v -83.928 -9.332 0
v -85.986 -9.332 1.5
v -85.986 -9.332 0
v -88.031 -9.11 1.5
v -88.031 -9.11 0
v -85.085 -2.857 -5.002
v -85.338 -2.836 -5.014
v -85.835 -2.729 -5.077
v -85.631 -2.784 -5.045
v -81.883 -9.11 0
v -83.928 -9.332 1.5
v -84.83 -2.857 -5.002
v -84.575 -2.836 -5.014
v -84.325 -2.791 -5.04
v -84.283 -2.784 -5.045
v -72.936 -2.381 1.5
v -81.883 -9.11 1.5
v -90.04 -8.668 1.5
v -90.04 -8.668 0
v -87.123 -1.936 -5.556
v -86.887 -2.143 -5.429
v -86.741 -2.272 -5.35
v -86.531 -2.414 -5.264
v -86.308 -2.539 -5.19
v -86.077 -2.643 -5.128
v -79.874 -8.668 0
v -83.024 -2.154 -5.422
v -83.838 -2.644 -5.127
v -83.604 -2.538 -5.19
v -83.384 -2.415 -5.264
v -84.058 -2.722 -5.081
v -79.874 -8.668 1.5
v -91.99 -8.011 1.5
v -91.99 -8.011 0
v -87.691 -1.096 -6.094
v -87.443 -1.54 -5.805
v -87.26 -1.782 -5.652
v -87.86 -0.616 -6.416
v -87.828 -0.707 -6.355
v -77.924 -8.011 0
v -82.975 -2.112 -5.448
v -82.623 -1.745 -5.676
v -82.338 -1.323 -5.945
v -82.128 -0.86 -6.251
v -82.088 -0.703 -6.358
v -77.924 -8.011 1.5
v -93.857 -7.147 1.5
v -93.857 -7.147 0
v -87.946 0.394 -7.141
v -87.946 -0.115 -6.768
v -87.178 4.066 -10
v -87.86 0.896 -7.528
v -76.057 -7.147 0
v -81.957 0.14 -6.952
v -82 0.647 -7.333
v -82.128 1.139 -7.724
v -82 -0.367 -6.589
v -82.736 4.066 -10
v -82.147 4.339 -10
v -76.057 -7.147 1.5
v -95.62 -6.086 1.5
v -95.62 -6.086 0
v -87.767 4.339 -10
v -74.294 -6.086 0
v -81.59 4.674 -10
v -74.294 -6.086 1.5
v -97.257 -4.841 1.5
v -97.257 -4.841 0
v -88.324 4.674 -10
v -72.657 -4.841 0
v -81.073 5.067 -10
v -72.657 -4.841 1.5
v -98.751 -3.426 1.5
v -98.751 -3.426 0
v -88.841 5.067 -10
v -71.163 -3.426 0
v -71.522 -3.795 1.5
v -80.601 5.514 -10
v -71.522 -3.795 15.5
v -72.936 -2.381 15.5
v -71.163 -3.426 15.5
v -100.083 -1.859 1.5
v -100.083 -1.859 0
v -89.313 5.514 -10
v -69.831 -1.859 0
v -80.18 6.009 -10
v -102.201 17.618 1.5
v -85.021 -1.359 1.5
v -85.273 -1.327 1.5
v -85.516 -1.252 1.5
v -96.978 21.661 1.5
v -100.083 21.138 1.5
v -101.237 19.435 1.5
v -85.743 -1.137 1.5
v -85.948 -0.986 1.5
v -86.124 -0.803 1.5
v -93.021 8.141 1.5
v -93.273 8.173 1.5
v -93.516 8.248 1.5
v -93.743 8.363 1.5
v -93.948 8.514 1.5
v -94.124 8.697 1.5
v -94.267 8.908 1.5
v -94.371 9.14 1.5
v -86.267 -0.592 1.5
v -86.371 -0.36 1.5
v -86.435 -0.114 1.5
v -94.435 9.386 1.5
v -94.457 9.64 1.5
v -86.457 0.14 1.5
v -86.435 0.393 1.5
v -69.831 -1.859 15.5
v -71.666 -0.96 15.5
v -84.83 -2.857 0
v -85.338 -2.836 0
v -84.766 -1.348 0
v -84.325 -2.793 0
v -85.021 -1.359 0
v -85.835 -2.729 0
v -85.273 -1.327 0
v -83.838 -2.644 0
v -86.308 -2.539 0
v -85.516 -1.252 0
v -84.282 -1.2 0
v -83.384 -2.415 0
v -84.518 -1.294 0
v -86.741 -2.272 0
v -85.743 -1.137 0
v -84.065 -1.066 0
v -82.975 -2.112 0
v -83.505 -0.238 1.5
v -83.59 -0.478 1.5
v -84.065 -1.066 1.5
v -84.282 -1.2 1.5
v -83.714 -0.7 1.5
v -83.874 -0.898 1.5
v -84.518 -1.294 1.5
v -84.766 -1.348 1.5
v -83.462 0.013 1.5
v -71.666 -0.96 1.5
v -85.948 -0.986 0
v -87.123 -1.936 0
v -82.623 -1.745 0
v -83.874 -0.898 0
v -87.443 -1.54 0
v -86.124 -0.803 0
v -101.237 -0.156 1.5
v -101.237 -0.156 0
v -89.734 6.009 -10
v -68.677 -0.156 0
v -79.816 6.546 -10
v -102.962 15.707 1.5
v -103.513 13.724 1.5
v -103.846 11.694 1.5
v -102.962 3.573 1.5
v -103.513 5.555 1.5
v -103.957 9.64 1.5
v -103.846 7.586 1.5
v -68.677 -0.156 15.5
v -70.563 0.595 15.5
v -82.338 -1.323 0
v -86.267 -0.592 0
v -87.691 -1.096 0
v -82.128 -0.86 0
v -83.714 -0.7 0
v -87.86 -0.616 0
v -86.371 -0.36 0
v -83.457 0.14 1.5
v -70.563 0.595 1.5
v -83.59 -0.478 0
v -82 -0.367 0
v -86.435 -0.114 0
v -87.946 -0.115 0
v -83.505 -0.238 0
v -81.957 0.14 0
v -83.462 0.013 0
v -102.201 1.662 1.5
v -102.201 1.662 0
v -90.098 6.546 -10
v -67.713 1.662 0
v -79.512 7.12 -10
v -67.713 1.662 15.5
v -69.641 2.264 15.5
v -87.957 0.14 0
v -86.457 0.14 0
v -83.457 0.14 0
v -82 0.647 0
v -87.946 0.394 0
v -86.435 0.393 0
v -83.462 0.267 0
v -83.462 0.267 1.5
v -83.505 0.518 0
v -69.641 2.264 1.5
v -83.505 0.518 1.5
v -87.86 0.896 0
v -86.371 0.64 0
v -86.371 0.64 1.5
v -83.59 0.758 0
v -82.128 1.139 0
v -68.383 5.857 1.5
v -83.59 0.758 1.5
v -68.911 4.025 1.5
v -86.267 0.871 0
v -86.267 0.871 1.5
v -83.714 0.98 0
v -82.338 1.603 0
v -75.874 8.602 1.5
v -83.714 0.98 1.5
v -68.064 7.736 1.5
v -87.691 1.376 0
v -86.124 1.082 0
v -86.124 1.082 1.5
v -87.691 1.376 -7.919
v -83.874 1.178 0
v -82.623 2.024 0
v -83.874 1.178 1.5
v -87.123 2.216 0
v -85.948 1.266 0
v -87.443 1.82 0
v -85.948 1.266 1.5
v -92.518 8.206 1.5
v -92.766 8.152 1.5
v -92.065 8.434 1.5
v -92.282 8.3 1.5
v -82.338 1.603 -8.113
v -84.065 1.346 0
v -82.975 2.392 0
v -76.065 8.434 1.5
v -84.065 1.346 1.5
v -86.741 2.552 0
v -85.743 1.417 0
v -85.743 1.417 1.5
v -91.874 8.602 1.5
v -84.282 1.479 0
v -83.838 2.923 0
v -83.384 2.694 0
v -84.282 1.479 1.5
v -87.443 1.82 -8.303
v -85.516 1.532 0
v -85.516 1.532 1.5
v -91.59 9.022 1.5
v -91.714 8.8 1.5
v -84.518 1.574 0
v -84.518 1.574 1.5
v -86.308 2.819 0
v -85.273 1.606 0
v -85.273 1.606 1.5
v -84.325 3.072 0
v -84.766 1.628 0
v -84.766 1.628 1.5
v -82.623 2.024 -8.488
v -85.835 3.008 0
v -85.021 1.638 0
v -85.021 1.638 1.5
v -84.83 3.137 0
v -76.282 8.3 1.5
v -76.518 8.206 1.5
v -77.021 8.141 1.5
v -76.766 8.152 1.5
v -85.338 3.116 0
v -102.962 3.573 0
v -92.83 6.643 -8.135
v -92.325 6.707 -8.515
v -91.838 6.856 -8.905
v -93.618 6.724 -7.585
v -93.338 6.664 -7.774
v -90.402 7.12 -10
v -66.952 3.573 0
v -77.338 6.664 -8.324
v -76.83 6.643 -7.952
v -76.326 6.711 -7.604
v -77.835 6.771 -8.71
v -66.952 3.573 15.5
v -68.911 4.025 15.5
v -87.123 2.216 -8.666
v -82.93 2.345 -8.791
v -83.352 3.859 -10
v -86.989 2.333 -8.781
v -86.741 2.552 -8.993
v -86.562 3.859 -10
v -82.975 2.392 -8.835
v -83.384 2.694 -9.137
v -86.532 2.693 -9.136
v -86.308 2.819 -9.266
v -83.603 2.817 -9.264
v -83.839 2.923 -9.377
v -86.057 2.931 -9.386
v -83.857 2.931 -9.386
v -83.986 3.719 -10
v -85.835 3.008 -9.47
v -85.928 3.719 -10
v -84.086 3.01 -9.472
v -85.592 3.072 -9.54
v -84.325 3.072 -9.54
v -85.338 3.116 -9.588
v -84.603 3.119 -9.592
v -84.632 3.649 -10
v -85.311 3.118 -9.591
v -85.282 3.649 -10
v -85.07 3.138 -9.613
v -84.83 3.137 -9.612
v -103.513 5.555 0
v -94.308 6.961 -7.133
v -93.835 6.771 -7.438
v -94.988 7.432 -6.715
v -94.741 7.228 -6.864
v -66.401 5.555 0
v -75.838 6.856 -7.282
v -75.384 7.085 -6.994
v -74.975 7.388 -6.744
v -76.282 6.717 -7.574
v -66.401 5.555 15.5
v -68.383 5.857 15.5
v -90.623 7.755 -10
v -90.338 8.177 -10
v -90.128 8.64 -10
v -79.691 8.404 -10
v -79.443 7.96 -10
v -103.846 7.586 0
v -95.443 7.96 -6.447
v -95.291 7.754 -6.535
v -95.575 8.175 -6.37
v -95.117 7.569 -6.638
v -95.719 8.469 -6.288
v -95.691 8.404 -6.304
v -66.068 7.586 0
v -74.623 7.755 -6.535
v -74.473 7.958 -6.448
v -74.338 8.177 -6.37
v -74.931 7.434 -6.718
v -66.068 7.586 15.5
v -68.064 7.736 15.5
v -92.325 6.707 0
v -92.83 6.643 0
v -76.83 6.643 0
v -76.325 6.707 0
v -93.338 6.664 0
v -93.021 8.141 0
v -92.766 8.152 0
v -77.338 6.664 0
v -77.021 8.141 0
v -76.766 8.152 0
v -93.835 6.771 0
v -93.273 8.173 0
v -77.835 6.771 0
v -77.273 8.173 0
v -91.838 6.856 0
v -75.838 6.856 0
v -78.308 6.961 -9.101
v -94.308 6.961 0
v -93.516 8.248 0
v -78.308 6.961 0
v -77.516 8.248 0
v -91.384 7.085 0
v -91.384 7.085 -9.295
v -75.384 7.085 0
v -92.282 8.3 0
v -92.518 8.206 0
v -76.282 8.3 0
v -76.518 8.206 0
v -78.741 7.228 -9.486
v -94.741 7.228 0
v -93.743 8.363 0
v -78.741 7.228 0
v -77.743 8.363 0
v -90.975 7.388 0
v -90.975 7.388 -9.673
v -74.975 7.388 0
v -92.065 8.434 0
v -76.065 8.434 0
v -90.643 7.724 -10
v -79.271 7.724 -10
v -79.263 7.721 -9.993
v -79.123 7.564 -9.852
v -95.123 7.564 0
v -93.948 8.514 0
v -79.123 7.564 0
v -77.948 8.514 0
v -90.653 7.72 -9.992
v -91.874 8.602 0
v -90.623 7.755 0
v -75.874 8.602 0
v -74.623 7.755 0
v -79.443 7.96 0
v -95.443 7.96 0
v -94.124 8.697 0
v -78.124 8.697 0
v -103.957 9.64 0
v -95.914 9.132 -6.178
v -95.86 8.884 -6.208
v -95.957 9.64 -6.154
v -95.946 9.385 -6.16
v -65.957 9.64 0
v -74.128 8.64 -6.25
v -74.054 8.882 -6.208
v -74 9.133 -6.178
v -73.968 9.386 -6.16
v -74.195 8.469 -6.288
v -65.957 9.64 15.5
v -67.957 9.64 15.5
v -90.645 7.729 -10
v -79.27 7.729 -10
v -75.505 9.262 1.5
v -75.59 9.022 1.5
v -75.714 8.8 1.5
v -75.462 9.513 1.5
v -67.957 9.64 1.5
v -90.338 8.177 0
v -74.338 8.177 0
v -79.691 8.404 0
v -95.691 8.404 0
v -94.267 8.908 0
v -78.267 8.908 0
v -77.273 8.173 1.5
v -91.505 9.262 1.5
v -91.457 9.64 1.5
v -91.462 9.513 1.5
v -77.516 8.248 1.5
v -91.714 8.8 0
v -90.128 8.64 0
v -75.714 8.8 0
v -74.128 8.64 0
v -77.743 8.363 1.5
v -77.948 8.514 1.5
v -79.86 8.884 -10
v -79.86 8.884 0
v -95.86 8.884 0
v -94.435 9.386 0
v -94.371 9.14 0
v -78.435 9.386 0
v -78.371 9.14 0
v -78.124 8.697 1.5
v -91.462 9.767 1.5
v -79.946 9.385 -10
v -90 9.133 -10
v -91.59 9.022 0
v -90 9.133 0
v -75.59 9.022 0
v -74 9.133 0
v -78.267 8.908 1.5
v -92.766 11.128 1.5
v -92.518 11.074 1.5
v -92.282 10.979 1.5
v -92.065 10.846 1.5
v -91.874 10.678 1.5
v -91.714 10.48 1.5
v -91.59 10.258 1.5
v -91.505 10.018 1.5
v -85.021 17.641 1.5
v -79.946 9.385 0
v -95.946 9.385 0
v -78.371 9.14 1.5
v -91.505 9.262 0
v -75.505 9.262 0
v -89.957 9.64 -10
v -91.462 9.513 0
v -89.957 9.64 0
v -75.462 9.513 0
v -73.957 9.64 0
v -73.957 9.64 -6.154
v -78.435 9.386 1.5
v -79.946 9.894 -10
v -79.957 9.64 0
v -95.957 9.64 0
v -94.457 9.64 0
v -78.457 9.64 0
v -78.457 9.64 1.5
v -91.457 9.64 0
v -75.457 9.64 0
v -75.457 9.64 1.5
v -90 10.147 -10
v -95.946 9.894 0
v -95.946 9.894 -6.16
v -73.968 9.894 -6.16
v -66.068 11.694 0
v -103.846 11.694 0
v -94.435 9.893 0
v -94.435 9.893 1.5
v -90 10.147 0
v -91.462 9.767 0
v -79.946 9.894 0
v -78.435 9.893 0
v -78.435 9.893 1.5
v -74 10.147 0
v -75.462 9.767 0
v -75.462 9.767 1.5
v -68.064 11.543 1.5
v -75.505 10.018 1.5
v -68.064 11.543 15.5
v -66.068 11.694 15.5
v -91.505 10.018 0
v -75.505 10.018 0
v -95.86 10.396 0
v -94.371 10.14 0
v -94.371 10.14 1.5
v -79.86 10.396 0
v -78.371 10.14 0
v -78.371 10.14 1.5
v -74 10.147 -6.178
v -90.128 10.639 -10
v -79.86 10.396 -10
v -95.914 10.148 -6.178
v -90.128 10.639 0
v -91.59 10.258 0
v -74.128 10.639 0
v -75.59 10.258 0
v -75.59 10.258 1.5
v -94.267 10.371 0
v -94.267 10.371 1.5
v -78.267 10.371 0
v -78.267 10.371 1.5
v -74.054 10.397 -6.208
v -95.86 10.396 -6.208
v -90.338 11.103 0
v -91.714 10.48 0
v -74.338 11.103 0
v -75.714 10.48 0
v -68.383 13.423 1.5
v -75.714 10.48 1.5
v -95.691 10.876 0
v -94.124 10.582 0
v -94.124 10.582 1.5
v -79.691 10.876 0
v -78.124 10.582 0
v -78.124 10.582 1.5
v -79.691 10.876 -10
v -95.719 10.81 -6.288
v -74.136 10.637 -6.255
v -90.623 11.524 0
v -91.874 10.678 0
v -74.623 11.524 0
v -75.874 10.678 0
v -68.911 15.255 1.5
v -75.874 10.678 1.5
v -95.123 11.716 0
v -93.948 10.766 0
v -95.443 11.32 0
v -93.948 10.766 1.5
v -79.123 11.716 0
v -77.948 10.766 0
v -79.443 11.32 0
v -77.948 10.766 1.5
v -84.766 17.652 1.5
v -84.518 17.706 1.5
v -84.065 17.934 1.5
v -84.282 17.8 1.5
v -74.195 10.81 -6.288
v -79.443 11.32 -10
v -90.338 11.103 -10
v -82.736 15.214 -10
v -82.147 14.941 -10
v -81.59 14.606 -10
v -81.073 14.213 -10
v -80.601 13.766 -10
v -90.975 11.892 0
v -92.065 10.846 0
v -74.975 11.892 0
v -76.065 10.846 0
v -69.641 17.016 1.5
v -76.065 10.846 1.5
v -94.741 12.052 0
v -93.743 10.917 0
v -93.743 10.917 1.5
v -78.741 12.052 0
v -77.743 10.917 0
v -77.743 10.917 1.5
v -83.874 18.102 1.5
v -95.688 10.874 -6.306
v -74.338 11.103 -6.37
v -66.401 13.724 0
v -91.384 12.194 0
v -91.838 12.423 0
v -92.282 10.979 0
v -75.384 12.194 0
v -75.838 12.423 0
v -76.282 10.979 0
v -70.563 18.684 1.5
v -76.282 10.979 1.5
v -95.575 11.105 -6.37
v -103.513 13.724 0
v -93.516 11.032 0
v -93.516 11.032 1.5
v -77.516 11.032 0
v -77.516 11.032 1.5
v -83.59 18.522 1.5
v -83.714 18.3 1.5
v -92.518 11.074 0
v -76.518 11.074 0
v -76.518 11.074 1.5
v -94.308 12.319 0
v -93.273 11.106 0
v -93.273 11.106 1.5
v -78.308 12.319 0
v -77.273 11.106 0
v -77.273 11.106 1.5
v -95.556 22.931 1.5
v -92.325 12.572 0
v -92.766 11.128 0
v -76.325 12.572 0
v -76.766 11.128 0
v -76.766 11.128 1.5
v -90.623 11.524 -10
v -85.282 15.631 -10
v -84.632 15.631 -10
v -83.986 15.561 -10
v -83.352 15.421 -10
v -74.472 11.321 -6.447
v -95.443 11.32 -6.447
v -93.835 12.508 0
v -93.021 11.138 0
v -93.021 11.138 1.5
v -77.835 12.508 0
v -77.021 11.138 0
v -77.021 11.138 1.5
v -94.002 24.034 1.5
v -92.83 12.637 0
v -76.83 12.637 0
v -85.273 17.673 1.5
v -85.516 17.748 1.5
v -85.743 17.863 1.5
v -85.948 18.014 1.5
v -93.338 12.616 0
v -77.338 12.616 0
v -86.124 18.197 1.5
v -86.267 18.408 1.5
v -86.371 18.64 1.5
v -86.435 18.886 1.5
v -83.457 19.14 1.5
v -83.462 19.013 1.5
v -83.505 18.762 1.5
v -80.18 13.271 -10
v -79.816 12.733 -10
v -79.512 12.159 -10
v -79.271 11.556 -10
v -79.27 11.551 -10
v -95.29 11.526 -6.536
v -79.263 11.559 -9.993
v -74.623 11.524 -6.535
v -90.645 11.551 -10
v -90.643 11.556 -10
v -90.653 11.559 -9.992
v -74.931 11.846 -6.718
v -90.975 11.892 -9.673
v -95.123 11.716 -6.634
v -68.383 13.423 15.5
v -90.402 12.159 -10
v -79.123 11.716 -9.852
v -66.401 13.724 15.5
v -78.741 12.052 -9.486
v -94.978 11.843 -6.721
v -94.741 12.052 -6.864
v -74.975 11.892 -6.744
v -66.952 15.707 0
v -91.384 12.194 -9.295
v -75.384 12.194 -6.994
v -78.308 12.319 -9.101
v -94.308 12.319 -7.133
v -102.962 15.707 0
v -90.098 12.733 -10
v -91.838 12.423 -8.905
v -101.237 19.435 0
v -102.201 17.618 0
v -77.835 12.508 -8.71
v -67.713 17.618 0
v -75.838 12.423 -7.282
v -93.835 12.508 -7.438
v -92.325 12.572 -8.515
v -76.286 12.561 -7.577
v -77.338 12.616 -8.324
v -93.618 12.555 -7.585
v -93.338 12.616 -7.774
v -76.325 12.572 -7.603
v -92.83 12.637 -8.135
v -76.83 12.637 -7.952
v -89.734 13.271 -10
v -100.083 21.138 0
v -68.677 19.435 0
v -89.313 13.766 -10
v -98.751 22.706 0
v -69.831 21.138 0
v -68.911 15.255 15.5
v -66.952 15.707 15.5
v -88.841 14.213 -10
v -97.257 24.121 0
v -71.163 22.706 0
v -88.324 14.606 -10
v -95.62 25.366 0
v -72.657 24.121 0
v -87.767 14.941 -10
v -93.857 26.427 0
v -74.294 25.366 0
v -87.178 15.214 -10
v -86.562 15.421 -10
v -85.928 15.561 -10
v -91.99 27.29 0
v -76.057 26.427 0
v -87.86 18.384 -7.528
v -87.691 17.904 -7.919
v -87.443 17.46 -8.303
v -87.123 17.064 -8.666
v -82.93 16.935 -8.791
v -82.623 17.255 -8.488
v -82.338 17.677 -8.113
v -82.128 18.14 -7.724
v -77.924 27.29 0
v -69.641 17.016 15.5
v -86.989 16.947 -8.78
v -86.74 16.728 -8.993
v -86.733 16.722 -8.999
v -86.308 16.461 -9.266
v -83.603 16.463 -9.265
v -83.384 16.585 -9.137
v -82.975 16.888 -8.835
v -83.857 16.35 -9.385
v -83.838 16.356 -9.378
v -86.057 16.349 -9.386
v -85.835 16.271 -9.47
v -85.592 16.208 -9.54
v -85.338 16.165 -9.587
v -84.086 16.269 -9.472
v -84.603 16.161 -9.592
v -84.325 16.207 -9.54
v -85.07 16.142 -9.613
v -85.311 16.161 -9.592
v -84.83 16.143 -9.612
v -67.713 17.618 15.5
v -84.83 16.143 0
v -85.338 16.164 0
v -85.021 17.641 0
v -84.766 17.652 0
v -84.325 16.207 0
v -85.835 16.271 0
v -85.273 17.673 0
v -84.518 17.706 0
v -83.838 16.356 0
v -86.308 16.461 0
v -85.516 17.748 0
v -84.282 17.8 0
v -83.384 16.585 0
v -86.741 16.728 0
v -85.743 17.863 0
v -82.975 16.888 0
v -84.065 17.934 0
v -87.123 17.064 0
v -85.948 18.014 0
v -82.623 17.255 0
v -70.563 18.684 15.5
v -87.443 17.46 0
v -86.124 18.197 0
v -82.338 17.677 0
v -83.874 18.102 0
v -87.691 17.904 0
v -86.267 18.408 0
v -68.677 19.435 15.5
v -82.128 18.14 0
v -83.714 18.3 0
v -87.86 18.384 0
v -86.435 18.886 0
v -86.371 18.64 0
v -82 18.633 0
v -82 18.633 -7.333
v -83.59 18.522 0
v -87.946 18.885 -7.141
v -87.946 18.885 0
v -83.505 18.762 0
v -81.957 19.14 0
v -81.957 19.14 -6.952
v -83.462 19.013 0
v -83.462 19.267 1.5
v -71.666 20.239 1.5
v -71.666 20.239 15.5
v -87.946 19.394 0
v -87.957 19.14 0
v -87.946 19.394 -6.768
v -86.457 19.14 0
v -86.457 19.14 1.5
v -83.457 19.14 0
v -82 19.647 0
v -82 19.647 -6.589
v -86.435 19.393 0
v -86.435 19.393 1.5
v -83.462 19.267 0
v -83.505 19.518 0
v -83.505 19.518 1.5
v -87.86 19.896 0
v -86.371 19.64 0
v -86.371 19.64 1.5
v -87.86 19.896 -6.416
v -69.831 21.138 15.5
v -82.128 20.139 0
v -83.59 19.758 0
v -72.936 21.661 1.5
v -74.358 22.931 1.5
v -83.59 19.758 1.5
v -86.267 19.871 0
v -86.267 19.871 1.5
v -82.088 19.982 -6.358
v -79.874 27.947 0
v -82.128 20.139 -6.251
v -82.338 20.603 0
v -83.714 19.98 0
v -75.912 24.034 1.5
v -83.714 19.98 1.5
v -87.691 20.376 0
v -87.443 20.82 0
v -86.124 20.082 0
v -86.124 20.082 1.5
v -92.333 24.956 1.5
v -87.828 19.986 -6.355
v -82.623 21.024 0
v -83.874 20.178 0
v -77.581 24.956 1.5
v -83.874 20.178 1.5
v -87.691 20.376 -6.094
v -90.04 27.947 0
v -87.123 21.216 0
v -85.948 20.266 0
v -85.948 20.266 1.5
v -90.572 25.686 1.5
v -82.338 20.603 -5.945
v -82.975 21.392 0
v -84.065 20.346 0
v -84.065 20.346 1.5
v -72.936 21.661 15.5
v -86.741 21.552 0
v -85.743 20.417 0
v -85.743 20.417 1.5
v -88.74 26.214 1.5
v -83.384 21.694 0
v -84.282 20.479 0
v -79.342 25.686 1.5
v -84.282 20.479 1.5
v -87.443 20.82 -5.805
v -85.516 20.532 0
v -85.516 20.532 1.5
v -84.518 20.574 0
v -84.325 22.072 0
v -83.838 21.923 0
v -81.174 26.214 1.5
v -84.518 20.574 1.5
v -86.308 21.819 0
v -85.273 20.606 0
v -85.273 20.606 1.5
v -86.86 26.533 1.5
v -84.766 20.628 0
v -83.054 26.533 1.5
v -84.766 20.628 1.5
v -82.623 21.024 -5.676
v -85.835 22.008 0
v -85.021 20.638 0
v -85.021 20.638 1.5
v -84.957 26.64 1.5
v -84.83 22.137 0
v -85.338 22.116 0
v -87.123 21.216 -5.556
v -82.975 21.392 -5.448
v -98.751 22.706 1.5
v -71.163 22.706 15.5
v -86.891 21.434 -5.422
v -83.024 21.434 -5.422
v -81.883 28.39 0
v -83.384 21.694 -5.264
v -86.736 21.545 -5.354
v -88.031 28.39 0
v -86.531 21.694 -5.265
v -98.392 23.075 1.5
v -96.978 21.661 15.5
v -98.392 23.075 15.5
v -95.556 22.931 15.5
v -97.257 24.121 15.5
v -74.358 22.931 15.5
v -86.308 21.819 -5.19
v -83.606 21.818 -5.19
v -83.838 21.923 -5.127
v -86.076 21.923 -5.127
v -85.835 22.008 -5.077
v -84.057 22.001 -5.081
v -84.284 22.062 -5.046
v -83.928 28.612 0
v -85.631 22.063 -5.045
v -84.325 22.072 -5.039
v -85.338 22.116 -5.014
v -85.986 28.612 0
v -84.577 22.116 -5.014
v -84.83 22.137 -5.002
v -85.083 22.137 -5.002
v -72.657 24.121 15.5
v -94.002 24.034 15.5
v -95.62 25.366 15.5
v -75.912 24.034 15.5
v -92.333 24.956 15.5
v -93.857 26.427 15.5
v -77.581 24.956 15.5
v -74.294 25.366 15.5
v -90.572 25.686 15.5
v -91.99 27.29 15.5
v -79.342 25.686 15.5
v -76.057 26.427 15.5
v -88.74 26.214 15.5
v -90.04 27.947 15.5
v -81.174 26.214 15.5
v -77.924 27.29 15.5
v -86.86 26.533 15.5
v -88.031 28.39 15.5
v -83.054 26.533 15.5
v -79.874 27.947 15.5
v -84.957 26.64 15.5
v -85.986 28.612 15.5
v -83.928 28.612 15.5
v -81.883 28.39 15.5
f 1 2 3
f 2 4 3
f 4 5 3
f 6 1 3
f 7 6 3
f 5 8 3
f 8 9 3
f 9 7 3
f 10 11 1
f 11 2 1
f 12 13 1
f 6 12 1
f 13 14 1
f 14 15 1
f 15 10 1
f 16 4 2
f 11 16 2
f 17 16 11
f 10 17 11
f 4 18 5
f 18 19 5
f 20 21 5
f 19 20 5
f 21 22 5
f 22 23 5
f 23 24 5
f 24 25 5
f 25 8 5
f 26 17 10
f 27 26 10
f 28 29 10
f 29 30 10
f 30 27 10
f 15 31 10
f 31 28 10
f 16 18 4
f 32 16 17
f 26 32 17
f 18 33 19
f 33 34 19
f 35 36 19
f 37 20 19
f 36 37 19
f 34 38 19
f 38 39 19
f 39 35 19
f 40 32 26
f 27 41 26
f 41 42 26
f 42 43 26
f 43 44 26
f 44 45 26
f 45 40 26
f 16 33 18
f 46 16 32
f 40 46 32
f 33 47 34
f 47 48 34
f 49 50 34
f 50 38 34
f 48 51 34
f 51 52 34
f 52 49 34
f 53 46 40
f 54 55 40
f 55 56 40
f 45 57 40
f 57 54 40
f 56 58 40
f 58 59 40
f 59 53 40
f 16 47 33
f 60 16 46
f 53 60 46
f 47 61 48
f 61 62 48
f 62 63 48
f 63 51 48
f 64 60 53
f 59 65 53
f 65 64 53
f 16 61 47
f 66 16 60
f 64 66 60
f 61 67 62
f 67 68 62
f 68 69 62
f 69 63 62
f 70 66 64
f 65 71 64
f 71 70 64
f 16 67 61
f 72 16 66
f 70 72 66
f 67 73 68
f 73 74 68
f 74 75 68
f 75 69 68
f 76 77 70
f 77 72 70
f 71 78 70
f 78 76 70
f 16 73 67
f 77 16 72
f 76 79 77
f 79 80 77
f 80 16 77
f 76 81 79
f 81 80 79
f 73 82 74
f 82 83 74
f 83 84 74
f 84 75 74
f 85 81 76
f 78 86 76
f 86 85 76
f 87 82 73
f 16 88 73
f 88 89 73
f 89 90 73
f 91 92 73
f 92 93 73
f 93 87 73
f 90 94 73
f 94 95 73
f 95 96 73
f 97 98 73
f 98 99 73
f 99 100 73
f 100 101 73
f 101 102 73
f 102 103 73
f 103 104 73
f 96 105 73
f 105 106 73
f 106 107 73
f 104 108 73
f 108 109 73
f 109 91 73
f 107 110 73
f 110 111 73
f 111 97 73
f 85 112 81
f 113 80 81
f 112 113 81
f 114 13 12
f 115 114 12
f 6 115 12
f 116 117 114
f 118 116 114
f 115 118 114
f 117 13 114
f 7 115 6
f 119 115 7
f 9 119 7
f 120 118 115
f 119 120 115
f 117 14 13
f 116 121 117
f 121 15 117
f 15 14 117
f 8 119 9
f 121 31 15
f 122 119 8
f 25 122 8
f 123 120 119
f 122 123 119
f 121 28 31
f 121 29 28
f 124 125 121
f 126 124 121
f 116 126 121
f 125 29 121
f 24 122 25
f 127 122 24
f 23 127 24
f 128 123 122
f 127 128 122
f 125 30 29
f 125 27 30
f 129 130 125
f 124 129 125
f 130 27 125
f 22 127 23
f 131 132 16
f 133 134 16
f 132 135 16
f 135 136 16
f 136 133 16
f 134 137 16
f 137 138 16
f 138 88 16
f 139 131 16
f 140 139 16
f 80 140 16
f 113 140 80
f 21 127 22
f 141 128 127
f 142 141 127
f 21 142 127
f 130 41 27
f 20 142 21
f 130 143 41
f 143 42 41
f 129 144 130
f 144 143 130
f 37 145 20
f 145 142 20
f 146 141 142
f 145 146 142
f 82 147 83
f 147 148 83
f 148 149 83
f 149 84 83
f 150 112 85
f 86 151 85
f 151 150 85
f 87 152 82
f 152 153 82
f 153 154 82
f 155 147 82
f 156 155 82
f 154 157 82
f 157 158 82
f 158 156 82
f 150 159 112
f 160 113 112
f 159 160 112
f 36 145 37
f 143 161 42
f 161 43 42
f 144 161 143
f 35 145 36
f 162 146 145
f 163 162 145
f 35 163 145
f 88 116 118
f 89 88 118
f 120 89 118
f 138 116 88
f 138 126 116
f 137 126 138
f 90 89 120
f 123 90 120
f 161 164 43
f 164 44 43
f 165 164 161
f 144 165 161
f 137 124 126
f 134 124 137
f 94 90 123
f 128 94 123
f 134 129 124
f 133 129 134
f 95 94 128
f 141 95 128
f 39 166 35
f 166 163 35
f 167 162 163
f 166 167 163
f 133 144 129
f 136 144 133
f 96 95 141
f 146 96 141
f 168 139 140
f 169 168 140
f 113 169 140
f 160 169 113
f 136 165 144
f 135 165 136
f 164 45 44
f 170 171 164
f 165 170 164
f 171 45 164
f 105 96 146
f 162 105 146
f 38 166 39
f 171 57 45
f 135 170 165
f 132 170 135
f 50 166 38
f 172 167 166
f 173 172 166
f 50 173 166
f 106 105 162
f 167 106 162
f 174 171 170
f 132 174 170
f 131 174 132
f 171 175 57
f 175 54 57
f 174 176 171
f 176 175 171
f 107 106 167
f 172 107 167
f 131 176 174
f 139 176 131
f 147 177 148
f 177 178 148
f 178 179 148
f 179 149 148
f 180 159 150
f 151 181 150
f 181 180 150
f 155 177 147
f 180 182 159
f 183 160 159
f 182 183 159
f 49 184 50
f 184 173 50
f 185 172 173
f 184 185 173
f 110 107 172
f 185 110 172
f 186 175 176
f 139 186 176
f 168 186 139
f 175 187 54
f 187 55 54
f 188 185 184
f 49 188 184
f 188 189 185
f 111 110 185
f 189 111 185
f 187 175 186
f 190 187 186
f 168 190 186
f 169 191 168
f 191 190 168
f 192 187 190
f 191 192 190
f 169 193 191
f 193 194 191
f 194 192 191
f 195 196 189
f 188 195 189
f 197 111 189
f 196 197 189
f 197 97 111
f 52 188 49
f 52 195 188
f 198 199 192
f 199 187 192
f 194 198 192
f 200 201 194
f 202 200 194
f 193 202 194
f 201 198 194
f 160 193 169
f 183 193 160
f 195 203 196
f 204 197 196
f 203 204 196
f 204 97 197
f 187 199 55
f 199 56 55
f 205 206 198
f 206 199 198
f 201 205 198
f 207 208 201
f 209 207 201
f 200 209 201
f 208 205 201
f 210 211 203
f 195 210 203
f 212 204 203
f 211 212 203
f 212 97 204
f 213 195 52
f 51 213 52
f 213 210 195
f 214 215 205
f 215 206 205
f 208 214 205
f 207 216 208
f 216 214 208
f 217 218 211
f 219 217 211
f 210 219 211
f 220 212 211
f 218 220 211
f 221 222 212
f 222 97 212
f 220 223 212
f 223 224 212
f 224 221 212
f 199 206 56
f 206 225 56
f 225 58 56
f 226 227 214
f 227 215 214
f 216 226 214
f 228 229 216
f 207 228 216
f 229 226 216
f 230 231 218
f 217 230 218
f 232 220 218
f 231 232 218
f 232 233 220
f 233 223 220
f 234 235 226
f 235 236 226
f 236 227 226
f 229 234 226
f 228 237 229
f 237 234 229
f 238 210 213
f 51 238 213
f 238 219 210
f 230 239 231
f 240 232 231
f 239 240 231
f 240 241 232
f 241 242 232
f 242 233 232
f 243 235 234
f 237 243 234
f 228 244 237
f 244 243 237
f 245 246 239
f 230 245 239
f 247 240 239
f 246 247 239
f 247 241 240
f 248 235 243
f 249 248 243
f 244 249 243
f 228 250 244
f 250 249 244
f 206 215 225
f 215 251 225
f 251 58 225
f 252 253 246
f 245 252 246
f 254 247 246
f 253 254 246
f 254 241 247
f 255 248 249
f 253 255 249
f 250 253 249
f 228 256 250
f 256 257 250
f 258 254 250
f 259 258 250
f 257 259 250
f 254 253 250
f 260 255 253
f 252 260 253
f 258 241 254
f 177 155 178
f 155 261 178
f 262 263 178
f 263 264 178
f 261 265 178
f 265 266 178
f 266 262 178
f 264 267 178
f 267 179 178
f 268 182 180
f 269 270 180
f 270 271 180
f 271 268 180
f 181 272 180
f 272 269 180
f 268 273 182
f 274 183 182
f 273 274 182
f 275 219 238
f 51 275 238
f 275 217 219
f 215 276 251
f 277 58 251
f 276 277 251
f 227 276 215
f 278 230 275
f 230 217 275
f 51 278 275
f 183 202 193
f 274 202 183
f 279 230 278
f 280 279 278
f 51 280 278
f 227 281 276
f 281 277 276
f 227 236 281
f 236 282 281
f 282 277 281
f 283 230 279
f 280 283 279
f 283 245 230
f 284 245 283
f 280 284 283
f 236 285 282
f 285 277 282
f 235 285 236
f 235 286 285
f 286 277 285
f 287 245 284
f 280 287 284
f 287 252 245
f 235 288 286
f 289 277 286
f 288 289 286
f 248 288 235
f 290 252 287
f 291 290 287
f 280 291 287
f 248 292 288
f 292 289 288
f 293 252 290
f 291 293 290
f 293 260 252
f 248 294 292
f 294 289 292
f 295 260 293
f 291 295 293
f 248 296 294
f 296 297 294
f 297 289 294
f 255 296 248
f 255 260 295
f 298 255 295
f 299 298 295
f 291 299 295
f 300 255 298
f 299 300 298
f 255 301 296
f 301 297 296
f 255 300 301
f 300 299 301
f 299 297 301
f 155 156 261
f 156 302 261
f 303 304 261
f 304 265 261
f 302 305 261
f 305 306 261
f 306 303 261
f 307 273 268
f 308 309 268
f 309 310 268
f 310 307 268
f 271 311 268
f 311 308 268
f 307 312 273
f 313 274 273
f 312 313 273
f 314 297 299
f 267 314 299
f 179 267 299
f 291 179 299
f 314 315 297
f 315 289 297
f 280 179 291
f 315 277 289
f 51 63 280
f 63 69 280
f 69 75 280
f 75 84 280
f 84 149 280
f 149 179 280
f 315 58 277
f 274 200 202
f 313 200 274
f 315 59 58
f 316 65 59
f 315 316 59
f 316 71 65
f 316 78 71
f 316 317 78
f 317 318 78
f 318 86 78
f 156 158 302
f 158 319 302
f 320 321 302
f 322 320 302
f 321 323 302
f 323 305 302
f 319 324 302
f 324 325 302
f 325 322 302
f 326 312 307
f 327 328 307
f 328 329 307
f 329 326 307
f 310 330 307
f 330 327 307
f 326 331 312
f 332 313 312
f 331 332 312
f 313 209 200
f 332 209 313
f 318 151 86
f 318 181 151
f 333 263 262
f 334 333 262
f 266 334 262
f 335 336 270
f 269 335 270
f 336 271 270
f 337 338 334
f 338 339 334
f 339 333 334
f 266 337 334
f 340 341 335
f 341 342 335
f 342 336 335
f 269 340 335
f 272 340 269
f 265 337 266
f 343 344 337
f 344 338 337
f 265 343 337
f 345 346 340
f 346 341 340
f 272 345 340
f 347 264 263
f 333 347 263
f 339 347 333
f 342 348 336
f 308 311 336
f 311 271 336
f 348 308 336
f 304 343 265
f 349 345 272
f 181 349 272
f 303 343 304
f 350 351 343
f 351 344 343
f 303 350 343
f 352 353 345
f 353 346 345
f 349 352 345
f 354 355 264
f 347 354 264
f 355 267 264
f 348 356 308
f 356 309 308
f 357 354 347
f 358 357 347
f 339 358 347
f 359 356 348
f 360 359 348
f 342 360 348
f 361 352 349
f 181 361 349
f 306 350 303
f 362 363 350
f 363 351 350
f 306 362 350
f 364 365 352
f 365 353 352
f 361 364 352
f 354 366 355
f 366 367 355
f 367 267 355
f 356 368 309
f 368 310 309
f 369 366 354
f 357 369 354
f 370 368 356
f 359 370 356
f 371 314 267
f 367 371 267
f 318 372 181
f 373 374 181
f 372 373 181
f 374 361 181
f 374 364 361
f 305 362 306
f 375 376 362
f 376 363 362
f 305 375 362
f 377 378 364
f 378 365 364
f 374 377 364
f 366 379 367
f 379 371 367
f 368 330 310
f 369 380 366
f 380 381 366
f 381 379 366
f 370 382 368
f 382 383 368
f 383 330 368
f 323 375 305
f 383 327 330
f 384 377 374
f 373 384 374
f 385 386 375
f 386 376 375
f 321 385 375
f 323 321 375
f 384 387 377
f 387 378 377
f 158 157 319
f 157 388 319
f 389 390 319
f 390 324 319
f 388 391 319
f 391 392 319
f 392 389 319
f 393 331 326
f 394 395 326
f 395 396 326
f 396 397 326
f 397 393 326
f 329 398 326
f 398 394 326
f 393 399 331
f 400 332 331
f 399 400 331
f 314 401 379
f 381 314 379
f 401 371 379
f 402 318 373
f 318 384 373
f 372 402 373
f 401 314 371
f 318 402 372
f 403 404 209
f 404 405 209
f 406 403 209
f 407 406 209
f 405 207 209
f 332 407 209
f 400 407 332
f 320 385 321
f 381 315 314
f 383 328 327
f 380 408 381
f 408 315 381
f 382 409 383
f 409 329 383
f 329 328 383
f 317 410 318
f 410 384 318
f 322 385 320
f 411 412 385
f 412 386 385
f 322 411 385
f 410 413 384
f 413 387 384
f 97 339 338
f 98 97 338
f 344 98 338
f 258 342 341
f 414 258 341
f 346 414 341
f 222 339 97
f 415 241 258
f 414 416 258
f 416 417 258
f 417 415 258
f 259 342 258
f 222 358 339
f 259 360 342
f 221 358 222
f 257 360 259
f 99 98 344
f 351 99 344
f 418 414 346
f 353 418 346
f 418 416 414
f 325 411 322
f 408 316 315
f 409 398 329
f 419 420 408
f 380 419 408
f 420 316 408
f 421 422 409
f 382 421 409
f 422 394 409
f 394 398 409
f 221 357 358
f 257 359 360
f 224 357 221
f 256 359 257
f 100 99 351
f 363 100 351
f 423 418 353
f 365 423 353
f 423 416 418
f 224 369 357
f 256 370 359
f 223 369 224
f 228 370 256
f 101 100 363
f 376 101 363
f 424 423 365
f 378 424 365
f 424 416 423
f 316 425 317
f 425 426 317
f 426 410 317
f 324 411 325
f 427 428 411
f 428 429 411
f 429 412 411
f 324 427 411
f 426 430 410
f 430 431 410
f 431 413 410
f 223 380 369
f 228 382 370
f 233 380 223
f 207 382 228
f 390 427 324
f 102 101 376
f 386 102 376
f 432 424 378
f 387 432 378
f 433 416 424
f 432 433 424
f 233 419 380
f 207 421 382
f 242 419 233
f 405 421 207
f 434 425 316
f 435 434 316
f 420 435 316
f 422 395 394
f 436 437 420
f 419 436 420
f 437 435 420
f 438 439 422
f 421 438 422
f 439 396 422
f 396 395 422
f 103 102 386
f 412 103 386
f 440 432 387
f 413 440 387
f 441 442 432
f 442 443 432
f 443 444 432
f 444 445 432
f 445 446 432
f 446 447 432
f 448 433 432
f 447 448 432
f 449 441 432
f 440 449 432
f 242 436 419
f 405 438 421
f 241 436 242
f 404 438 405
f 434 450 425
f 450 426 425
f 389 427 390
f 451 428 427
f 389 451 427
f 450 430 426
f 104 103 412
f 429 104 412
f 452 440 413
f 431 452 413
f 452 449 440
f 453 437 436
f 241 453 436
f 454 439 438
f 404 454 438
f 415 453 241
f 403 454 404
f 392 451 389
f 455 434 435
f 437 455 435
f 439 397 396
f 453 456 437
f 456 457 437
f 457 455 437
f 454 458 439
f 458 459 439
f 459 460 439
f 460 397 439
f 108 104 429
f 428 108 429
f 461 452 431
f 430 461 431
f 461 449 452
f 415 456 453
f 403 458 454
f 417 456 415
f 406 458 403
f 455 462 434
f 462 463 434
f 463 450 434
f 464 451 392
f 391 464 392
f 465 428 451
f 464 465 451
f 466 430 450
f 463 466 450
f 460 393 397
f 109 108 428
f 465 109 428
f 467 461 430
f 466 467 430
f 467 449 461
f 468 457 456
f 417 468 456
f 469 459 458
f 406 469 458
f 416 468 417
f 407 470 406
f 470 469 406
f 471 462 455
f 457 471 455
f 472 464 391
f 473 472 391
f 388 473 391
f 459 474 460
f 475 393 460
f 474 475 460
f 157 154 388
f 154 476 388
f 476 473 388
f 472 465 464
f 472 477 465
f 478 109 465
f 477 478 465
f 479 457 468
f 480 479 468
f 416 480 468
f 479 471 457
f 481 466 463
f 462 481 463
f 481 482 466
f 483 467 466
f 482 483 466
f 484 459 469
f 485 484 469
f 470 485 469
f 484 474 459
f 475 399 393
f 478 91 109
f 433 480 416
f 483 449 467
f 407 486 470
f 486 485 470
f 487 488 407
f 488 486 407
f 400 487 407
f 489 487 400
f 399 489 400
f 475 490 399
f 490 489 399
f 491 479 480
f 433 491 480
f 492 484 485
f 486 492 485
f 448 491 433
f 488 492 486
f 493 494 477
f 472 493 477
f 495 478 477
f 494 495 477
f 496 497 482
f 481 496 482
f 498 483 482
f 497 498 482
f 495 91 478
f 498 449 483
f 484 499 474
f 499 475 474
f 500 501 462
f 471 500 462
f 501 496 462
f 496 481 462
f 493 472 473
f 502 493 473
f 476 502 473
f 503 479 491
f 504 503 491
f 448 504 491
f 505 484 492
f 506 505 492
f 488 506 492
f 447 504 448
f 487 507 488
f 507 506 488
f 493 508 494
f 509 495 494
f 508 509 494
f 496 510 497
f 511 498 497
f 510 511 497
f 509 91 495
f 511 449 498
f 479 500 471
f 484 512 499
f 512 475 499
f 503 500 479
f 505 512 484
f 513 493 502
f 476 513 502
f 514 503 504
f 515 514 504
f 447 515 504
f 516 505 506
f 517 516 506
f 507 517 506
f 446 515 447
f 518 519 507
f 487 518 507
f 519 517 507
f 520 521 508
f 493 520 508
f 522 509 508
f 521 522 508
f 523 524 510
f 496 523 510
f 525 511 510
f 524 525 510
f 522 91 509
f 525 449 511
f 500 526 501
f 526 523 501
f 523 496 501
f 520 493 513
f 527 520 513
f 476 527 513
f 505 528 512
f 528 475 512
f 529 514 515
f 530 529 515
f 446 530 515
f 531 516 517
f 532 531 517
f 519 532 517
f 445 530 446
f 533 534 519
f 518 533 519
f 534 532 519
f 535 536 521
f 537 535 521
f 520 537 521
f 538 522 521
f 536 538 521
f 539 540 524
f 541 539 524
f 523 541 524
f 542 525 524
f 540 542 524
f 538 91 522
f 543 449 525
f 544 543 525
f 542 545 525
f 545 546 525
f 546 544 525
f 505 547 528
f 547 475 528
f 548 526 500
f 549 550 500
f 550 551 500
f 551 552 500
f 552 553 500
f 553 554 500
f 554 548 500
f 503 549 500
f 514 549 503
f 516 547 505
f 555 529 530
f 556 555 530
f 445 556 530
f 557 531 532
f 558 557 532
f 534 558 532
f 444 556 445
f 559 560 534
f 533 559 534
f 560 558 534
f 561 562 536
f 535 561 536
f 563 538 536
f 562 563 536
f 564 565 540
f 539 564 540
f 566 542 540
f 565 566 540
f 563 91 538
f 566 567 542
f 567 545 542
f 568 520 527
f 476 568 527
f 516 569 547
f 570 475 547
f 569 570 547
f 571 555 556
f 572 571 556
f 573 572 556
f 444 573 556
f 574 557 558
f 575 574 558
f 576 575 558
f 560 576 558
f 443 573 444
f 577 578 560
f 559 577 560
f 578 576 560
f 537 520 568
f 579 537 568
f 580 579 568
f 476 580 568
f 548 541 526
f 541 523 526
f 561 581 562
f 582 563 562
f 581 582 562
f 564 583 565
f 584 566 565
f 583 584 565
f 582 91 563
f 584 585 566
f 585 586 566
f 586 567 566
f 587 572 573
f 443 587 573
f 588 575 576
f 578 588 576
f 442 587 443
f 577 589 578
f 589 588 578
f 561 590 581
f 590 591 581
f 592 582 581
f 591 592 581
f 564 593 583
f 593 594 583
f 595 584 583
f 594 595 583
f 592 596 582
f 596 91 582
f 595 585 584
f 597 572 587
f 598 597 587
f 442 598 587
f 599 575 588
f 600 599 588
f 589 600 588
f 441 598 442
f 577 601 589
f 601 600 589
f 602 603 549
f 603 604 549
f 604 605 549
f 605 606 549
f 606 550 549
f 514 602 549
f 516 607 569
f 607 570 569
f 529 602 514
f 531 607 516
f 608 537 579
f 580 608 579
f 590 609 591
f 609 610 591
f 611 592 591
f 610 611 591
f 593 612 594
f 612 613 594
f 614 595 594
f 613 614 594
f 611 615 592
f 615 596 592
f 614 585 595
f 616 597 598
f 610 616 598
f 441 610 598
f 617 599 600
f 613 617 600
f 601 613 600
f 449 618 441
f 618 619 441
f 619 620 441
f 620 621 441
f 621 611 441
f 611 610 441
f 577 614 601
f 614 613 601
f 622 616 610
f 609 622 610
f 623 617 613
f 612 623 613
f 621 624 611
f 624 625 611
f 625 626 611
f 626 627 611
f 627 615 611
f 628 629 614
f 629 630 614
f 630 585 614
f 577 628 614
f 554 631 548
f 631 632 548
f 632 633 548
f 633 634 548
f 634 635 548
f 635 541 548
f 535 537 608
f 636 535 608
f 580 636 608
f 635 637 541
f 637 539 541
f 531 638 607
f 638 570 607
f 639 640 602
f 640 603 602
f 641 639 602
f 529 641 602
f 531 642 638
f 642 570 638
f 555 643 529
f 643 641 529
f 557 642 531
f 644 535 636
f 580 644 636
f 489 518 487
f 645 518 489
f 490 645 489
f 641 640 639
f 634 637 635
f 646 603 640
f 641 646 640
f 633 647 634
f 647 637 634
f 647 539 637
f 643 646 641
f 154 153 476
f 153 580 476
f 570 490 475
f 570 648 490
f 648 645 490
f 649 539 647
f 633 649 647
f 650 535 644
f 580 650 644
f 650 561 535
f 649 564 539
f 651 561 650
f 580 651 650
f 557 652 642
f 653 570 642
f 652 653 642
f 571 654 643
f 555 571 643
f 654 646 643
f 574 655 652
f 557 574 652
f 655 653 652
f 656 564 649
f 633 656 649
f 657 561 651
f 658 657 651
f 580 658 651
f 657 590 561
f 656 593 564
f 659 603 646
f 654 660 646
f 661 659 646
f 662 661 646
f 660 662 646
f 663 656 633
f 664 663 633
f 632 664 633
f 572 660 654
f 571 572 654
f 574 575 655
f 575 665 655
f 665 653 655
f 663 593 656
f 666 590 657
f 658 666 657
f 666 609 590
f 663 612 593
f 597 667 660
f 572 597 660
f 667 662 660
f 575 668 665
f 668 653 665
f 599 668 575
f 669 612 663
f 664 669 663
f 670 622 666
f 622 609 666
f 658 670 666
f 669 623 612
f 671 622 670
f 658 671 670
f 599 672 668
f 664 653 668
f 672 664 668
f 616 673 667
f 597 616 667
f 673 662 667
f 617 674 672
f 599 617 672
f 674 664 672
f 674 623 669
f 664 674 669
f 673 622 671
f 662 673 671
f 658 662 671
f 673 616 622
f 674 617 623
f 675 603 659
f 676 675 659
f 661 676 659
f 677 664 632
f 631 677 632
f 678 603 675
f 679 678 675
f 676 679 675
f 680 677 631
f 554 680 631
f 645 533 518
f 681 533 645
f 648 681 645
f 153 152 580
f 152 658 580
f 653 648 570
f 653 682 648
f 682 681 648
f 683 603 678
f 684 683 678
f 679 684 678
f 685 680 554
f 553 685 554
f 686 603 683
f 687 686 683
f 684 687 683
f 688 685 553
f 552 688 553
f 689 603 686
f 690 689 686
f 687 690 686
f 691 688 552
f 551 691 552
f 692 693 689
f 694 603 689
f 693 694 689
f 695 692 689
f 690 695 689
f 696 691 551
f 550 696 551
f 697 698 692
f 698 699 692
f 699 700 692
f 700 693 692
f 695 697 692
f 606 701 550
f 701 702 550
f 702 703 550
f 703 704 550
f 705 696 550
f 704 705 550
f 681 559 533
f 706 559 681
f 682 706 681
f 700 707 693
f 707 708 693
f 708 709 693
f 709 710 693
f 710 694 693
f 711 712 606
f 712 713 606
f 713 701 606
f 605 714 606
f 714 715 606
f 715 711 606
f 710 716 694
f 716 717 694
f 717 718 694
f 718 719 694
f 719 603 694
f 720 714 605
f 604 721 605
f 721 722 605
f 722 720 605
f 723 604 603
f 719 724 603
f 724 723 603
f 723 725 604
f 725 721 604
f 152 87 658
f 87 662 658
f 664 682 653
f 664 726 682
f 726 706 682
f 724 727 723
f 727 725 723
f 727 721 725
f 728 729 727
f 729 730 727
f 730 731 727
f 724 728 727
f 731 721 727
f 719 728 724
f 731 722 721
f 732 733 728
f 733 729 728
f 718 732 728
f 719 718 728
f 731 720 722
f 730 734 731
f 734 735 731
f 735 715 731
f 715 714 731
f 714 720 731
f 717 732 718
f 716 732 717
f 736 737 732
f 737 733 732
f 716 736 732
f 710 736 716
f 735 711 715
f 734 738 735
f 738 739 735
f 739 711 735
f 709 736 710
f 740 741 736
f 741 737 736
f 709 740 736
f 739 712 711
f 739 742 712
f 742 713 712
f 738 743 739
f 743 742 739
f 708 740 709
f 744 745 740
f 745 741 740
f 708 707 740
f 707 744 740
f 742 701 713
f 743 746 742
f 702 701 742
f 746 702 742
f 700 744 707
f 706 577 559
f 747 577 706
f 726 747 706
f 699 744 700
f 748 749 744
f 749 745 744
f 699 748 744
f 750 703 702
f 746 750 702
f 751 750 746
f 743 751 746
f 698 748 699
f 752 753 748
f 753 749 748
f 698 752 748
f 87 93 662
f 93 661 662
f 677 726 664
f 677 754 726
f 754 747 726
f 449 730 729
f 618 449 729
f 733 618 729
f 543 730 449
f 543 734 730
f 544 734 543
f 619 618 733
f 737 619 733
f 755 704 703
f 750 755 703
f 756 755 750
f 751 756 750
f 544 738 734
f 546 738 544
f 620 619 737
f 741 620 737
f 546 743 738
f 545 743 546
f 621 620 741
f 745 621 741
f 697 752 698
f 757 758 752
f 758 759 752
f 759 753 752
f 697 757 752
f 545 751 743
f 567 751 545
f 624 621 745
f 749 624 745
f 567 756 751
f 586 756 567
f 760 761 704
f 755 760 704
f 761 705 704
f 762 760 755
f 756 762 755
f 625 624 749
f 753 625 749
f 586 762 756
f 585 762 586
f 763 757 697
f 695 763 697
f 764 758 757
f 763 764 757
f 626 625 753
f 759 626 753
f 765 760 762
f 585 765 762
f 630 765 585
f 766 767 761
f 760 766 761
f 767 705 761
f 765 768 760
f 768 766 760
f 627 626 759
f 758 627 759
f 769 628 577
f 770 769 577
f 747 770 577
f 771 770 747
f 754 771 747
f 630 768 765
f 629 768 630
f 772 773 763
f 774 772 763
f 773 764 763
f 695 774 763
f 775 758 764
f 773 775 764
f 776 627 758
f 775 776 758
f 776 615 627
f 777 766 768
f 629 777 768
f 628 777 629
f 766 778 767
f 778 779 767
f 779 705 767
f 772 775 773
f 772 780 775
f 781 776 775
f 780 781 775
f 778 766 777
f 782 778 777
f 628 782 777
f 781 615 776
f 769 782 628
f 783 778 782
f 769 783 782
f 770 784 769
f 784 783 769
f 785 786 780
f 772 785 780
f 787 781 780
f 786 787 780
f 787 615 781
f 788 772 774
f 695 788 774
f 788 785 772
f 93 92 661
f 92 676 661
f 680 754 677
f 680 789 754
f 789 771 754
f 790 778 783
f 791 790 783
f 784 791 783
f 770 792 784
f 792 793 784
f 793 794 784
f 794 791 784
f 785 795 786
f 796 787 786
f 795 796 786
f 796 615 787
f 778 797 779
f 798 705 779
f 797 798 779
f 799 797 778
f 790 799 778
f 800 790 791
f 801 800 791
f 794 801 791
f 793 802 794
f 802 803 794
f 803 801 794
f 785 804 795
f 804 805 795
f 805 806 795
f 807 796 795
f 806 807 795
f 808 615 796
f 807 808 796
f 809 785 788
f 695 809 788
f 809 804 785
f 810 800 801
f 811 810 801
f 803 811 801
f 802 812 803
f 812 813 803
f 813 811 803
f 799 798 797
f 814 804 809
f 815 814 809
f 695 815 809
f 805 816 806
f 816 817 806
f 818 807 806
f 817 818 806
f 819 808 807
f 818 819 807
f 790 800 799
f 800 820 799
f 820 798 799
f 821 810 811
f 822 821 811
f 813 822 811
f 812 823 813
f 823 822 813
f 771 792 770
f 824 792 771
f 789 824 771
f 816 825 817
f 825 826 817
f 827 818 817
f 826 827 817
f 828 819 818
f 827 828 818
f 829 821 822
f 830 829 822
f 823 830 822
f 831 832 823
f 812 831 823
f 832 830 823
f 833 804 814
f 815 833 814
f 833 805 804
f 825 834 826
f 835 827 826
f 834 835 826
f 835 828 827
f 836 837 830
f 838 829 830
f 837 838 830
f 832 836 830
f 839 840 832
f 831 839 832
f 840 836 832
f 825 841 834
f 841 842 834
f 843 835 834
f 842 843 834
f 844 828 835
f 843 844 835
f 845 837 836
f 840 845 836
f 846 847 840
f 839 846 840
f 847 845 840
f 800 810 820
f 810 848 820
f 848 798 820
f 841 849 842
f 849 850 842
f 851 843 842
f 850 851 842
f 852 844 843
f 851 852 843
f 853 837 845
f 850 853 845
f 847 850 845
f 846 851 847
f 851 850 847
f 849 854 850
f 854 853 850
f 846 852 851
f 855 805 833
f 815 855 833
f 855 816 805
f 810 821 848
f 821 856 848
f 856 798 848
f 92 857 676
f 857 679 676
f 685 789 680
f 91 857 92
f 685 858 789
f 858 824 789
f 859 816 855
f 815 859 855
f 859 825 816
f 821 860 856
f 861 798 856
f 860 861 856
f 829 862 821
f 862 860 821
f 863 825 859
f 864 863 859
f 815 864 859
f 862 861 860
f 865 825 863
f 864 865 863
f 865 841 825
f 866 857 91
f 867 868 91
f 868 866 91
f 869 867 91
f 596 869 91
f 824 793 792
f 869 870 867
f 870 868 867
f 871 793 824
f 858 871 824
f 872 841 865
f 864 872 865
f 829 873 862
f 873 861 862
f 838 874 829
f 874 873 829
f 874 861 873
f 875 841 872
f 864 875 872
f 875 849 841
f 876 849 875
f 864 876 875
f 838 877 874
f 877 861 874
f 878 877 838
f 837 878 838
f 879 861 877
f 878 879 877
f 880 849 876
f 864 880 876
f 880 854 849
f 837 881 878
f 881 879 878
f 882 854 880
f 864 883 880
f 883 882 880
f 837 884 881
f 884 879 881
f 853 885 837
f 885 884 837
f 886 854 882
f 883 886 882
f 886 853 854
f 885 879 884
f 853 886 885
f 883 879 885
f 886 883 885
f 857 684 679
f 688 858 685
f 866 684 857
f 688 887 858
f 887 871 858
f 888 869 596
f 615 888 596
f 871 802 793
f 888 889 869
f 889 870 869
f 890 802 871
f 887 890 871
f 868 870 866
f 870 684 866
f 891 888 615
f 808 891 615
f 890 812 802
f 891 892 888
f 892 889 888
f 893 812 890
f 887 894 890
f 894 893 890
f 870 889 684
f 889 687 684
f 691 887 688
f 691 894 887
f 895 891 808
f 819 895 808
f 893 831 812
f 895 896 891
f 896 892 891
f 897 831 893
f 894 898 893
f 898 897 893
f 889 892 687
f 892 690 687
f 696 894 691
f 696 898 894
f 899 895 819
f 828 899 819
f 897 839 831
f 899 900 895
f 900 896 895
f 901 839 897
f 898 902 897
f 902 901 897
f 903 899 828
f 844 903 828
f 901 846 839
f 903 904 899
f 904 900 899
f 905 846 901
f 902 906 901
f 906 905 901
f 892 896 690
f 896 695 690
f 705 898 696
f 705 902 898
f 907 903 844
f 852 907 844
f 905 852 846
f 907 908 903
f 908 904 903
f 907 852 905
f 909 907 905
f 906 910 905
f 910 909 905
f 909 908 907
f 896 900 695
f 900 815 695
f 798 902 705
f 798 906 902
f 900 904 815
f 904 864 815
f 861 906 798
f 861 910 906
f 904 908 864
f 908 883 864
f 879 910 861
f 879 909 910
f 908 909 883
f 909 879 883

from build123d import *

# Parameters (mm, degrees)
CROQUIS1_R              = 19
CROQUIS1_R_2            = 1.5
SALIENTE_EXTRUIR1_DEPTH = 1.5
SALIENTE_EXTRUIR2_DEPTH = 14
SALIENTE_EXTRUIR3_START = 10
CROQUIS3_R              = 19
CROQUIS3_R_2            = 3
SALIENTE_EXTRUIR3_DEPTH = 10


with BuildPart() as part:
    # Croquis1 → Saliente-Extruir1 (new body)
    with BuildSketch(Plane.XY):
        with Locations((-84.957007, 9.639802)):
            Circle(CROQUIS1_R)
        with Locations((-84.957007, 19.139802)):
            Circle(CROQUIS1_R_2, mode=Mode.SUBTRACT)
        with Locations((-92.957007, 9.639802)):
            Circle(CROQUIS1_R_2, mode=Mode.SUBTRACT)
        with Locations((-84.957007, 0.139802)):
            Circle(CROQUIS1_R_2, mode=Mode.SUBTRACT)
        with Locations((-76.957007, 9.639802)):
            Circle(CROQUIS1_R_2, mode=Mode.SUBTRACT)
    extrude(amount=SALIENTE_EXTRUIR1_DEPTH)

    # Croquis2 → Saliente-Extruir2 (add)
    with BuildSketch(Plane.XY.offset(1.5)):
        with BuildLine():
            Line((-98.392036, 23.074831), (-96.977823, 21.660617))
            ThreePointArc((-96.977823, 21.660617), (-72.936192, 21.660617), (-72.936192, -2.381013))
            Line((-72.936192, -2.381013), (-71.521978, -3.795227))
            ThreePointArc((-71.521978, -3.795227), (-71.521978, 23.074831), (-98.392036, 23.074831))
        make_face()
    extrude(amount=SALIENTE_EXTRUIR2_DEPTH)

    # Croquis3 → Saliente-Extruir3 (add)
    with BuildSketch(Plane(origin=(0, 0, 0), x_dir=(-1, 0, 0), z_dir=(0, 0, -1)).offset(SALIENTE_EXTRUIR3_START)):
        with Locations((84.957007, 9.639802)):
            Circle(CROQUIS3_R)
        with Locations((84.957007, 0.139802)):
            Circle(CROQUIS3_R_2, mode=Mode.SUBTRACT)
        with Locations((76.957007, 9.639802)):
            Circle(CROQUIS3_R_2, mode=Mode.SUBTRACT)
        with Locations((92.957007, 9.639802)):
            Circle(CROQUIS3_R_2, mode=Mode.SUBTRACT)
        with Locations((84.957007, 19.139802)):
            Circle(CROQUIS3_R_2, mode=Mode.SUBTRACT)
    extrude(amount=-SALIENTE_EXTRUIR3_DEPTH)

    # Croquis5 → Cortar-Revolución1 (revolve, cut)
    with BuildSketch(Plane(origin=(0, 9.639802, 0), x_dir=(-1, 0, 0), z_dir=(0, -1, 0)), mode=Mode.PRIVATE) as cortar_revoluci_n1_sk:
        Polygon((90.957007, 10), (103.957007, 0), (103.957007, 10), align=None)
    revolve(cortar_revoluci_n1_sk.sketch.rotate(Axis((-84.957007, 9.639802, 0), (0, 0, -1)), 45), axis=Axis((-84.957007, 9.639802, 0), (0, 0, -1)), mode=Mode.SUBTRACT)


solid = part.part
